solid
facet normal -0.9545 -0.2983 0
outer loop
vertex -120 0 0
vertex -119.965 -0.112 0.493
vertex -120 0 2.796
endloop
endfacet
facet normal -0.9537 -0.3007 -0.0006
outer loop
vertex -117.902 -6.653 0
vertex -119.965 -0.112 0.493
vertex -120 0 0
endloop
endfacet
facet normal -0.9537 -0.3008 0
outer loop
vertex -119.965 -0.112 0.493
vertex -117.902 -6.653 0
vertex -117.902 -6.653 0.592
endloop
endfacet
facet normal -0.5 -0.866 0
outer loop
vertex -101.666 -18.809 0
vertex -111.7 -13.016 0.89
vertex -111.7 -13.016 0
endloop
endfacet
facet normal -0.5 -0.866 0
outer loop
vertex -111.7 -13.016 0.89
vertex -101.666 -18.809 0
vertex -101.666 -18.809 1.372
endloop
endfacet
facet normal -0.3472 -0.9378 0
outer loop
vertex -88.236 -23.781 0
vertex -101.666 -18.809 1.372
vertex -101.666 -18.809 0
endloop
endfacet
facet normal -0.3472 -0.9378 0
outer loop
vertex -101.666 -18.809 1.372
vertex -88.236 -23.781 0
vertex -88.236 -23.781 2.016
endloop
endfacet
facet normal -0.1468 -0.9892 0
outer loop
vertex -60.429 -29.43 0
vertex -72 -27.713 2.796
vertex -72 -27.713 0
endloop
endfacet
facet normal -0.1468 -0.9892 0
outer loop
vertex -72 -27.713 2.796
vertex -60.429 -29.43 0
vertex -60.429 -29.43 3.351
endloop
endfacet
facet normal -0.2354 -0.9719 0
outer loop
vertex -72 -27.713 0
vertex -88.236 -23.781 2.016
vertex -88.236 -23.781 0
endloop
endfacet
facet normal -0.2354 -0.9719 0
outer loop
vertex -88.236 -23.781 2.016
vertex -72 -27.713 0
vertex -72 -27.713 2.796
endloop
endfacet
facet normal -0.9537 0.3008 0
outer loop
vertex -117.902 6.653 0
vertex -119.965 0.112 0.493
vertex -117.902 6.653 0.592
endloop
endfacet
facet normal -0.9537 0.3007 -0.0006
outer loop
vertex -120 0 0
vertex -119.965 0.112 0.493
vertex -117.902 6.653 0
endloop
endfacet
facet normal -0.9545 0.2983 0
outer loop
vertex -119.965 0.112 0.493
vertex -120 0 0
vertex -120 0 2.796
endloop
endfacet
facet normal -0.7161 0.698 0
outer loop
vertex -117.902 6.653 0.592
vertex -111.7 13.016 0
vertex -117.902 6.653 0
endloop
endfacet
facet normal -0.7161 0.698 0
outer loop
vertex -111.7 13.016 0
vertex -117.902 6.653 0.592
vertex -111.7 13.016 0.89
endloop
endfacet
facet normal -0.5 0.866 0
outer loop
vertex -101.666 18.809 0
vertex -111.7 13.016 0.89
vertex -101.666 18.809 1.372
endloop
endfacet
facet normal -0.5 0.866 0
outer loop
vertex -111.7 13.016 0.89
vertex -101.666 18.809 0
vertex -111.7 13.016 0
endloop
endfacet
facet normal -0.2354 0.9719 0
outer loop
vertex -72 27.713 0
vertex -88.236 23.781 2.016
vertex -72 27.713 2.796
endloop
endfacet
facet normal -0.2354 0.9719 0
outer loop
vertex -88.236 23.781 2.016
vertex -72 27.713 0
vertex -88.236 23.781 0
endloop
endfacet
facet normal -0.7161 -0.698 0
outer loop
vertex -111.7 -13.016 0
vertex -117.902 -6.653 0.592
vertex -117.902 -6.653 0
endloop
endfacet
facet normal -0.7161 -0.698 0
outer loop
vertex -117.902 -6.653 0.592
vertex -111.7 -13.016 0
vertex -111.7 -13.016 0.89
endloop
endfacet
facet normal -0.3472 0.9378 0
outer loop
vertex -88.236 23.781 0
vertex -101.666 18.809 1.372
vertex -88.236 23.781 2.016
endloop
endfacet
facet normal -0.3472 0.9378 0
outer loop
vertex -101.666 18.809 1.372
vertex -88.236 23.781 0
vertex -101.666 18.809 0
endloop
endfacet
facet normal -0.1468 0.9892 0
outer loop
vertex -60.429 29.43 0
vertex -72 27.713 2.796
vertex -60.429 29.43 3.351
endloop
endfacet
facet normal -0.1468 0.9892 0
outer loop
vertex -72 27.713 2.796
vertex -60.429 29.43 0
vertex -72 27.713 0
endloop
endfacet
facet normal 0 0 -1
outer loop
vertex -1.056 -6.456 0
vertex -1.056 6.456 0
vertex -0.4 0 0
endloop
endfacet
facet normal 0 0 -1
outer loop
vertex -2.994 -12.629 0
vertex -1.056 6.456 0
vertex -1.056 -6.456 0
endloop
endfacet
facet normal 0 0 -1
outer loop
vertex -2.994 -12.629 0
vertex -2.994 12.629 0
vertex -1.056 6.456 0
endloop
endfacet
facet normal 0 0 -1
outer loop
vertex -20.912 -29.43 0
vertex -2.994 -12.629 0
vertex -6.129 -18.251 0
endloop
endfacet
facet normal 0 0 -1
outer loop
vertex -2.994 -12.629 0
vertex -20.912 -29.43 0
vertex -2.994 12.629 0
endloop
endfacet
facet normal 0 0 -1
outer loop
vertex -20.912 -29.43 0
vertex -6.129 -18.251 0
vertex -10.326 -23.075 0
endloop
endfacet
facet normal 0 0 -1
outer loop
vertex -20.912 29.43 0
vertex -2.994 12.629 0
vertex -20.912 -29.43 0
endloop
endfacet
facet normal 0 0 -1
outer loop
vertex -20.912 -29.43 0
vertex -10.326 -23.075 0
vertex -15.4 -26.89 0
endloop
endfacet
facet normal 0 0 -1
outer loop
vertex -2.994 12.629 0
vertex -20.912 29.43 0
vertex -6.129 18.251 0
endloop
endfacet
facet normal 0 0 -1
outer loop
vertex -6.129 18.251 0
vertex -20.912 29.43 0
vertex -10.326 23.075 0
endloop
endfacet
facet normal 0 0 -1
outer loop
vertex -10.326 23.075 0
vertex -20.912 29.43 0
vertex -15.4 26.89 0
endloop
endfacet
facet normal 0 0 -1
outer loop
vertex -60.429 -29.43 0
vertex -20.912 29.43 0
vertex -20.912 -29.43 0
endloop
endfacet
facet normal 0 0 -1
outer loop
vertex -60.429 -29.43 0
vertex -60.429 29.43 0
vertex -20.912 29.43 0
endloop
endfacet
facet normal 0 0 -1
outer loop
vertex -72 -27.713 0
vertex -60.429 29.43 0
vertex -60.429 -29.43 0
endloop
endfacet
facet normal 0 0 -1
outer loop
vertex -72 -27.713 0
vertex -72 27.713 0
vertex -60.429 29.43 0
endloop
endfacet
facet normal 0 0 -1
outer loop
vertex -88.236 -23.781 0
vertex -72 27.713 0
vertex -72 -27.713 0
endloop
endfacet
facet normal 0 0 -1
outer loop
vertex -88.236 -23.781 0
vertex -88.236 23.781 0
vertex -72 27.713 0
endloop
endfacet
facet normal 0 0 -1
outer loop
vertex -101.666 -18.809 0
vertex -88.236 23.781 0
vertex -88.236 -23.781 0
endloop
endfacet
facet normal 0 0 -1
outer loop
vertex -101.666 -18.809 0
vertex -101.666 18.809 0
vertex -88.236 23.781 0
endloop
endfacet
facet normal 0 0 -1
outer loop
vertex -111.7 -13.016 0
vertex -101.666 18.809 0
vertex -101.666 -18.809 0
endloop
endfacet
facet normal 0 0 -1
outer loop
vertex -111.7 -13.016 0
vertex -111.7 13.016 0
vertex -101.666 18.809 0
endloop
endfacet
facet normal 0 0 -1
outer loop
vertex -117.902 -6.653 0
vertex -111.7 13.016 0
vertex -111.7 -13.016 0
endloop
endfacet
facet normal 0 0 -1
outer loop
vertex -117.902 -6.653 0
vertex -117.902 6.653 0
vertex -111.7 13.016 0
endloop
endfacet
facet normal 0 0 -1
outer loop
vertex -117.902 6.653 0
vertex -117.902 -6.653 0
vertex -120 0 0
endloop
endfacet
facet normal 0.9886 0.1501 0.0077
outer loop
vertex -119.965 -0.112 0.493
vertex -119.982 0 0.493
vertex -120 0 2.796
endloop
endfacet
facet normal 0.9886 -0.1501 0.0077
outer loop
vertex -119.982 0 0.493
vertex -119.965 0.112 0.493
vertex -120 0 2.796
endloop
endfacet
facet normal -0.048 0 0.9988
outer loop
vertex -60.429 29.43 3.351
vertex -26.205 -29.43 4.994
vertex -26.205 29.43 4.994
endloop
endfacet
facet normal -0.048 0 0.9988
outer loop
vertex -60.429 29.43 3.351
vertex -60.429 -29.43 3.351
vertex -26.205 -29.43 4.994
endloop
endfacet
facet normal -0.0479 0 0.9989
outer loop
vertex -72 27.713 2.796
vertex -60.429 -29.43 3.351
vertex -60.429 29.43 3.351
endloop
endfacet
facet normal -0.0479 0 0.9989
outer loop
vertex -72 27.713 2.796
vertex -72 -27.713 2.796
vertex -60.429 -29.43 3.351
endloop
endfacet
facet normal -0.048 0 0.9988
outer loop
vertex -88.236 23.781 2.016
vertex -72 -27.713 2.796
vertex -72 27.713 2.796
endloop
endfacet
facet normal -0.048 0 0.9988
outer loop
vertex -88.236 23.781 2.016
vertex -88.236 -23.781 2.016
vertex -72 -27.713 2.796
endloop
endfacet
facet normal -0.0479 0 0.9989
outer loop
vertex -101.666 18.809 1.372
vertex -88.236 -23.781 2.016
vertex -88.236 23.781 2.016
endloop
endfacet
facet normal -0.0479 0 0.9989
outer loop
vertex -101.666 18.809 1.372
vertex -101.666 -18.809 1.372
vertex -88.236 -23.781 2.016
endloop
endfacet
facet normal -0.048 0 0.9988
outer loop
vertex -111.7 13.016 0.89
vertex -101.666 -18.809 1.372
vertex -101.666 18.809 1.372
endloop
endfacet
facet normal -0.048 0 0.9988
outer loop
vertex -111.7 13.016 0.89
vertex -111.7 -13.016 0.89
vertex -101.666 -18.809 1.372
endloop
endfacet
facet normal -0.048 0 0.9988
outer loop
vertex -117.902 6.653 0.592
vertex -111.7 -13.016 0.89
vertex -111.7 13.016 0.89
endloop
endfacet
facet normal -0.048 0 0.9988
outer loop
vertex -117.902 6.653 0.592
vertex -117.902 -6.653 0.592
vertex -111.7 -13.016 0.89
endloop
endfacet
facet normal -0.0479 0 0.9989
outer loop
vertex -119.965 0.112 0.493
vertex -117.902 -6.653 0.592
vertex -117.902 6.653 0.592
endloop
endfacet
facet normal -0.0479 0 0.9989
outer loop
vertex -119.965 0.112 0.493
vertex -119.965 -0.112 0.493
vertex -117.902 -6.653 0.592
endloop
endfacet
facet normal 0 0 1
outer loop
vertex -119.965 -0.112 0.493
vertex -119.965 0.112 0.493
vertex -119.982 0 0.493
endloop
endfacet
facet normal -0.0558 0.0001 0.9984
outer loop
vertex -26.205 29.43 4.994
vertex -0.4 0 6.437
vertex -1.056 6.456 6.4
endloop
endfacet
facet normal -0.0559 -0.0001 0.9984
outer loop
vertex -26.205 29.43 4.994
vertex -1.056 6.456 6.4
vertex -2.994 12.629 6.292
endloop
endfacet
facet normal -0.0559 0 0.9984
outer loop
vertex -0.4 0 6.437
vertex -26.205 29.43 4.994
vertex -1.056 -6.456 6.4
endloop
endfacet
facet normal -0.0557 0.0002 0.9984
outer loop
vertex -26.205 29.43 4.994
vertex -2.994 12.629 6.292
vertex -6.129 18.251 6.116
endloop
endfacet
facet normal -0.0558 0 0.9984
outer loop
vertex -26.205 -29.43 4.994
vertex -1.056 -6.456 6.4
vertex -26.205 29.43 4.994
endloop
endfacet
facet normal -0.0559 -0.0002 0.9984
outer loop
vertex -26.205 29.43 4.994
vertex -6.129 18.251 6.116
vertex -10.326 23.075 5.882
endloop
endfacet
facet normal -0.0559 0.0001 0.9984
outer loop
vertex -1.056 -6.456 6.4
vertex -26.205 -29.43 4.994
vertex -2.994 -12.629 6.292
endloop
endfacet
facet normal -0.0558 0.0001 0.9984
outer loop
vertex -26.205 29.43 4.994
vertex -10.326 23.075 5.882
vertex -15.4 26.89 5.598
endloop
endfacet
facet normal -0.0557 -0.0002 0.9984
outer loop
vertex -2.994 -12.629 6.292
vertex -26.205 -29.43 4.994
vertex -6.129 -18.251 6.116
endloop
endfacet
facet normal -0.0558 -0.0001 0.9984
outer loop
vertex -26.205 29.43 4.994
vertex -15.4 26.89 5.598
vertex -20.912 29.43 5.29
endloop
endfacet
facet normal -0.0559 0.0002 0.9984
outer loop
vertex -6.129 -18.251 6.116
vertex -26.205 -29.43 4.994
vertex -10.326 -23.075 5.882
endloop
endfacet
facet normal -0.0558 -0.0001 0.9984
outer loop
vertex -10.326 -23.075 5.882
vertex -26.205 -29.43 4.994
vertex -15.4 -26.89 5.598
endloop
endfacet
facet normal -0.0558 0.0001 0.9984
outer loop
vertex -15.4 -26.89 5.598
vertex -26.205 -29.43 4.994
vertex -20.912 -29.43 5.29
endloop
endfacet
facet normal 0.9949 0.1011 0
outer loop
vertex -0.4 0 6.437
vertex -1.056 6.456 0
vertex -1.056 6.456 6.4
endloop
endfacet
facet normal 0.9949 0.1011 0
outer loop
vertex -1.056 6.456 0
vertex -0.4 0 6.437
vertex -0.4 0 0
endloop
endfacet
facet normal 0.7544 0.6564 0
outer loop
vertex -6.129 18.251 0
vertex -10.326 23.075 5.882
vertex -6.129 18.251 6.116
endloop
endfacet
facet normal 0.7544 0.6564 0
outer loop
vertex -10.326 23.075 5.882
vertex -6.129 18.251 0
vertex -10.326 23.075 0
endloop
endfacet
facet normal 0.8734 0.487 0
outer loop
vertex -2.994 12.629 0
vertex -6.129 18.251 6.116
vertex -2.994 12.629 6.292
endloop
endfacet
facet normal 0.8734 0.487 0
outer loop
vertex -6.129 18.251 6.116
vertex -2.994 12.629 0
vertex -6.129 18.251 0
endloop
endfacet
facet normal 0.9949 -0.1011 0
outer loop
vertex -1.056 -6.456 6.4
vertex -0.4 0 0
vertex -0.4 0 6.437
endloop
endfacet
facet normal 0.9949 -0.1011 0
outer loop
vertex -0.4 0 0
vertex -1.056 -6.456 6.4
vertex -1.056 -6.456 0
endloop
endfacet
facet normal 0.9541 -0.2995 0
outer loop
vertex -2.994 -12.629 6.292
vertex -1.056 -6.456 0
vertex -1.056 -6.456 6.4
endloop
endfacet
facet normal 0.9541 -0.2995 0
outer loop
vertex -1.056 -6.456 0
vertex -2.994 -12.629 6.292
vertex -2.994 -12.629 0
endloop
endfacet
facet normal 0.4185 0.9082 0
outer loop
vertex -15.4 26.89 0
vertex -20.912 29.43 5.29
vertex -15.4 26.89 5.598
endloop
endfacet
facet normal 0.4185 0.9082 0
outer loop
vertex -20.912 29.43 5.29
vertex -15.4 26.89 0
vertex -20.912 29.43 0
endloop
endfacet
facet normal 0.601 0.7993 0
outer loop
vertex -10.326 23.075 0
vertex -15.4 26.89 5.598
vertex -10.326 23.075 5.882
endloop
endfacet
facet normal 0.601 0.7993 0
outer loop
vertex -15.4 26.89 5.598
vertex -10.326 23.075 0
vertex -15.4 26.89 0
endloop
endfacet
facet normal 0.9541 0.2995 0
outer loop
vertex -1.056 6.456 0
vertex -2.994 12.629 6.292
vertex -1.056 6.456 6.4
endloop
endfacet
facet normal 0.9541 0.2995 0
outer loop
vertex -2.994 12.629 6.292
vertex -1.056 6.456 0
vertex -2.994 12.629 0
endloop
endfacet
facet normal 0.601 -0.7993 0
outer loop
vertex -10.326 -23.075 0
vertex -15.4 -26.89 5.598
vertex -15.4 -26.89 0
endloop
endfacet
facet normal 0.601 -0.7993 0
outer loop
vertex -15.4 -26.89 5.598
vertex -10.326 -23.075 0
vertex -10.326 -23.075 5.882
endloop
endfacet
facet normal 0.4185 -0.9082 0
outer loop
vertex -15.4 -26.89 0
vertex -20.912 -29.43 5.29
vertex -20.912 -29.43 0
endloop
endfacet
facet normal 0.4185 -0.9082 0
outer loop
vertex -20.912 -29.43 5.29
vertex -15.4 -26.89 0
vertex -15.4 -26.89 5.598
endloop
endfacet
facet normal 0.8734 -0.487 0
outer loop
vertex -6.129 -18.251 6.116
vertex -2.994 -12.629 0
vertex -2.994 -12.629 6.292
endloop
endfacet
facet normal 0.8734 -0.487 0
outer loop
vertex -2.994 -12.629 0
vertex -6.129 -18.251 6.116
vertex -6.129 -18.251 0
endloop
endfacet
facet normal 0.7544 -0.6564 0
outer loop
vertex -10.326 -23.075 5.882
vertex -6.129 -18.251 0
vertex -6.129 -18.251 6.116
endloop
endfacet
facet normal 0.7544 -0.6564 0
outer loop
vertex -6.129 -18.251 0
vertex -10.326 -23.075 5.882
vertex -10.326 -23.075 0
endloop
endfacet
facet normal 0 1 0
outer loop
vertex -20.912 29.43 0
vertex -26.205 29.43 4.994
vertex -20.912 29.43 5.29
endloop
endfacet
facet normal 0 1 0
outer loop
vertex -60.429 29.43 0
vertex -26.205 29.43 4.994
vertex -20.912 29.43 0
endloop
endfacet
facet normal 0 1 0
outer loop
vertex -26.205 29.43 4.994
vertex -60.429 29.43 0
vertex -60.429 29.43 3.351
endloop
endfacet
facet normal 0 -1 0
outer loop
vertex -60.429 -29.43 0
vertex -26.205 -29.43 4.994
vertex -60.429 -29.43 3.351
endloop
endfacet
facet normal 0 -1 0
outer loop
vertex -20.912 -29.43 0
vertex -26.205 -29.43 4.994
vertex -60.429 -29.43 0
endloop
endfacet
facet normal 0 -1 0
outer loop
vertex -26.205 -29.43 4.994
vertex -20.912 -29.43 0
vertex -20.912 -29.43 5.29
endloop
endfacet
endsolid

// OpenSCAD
module wedge() {
    translate([-10,-40,0])
    scale([1,8,0.5])
    cube(10);
    difference() {
        linear_extrude(5)
            scale([3,1,1])
            circle(40);
        translate([70,0,-8])
            linear_extrude(30)
            circle(80);
        translate([0,-50,-10])
            cube(100);
    }
}
module wedge_tilt() {
    translate([0,0,5.1])
    scale([1,2,2])
    rotate([0,-1.1,0])
    wedge();
}
module edge_cutter() {
    mirror([1,0,0])
    scale([10,1,5])
    translate([0,29.43,-5])
    cube(10);
}
difference() {
    translate([8,0,0])
    union() {
        scale([0.8,0.8,1])
        translate([-40,0,0])
        difference()
        {
            wedge();
            wedge_tilt();
        }
        translate([-5.4,0,0])
        difference()
        {
            translate([-33,0,0])
            linear_extrude(7)
            scale([1,1.035,5.2])
            circle(30);
            translate([0,0,1.5])
            rotate([0,-1,0])
            wedge_tilt();
        }
    }
    edge_cutter();
    mirror([0,1,0])
    edge_cutter();
}
